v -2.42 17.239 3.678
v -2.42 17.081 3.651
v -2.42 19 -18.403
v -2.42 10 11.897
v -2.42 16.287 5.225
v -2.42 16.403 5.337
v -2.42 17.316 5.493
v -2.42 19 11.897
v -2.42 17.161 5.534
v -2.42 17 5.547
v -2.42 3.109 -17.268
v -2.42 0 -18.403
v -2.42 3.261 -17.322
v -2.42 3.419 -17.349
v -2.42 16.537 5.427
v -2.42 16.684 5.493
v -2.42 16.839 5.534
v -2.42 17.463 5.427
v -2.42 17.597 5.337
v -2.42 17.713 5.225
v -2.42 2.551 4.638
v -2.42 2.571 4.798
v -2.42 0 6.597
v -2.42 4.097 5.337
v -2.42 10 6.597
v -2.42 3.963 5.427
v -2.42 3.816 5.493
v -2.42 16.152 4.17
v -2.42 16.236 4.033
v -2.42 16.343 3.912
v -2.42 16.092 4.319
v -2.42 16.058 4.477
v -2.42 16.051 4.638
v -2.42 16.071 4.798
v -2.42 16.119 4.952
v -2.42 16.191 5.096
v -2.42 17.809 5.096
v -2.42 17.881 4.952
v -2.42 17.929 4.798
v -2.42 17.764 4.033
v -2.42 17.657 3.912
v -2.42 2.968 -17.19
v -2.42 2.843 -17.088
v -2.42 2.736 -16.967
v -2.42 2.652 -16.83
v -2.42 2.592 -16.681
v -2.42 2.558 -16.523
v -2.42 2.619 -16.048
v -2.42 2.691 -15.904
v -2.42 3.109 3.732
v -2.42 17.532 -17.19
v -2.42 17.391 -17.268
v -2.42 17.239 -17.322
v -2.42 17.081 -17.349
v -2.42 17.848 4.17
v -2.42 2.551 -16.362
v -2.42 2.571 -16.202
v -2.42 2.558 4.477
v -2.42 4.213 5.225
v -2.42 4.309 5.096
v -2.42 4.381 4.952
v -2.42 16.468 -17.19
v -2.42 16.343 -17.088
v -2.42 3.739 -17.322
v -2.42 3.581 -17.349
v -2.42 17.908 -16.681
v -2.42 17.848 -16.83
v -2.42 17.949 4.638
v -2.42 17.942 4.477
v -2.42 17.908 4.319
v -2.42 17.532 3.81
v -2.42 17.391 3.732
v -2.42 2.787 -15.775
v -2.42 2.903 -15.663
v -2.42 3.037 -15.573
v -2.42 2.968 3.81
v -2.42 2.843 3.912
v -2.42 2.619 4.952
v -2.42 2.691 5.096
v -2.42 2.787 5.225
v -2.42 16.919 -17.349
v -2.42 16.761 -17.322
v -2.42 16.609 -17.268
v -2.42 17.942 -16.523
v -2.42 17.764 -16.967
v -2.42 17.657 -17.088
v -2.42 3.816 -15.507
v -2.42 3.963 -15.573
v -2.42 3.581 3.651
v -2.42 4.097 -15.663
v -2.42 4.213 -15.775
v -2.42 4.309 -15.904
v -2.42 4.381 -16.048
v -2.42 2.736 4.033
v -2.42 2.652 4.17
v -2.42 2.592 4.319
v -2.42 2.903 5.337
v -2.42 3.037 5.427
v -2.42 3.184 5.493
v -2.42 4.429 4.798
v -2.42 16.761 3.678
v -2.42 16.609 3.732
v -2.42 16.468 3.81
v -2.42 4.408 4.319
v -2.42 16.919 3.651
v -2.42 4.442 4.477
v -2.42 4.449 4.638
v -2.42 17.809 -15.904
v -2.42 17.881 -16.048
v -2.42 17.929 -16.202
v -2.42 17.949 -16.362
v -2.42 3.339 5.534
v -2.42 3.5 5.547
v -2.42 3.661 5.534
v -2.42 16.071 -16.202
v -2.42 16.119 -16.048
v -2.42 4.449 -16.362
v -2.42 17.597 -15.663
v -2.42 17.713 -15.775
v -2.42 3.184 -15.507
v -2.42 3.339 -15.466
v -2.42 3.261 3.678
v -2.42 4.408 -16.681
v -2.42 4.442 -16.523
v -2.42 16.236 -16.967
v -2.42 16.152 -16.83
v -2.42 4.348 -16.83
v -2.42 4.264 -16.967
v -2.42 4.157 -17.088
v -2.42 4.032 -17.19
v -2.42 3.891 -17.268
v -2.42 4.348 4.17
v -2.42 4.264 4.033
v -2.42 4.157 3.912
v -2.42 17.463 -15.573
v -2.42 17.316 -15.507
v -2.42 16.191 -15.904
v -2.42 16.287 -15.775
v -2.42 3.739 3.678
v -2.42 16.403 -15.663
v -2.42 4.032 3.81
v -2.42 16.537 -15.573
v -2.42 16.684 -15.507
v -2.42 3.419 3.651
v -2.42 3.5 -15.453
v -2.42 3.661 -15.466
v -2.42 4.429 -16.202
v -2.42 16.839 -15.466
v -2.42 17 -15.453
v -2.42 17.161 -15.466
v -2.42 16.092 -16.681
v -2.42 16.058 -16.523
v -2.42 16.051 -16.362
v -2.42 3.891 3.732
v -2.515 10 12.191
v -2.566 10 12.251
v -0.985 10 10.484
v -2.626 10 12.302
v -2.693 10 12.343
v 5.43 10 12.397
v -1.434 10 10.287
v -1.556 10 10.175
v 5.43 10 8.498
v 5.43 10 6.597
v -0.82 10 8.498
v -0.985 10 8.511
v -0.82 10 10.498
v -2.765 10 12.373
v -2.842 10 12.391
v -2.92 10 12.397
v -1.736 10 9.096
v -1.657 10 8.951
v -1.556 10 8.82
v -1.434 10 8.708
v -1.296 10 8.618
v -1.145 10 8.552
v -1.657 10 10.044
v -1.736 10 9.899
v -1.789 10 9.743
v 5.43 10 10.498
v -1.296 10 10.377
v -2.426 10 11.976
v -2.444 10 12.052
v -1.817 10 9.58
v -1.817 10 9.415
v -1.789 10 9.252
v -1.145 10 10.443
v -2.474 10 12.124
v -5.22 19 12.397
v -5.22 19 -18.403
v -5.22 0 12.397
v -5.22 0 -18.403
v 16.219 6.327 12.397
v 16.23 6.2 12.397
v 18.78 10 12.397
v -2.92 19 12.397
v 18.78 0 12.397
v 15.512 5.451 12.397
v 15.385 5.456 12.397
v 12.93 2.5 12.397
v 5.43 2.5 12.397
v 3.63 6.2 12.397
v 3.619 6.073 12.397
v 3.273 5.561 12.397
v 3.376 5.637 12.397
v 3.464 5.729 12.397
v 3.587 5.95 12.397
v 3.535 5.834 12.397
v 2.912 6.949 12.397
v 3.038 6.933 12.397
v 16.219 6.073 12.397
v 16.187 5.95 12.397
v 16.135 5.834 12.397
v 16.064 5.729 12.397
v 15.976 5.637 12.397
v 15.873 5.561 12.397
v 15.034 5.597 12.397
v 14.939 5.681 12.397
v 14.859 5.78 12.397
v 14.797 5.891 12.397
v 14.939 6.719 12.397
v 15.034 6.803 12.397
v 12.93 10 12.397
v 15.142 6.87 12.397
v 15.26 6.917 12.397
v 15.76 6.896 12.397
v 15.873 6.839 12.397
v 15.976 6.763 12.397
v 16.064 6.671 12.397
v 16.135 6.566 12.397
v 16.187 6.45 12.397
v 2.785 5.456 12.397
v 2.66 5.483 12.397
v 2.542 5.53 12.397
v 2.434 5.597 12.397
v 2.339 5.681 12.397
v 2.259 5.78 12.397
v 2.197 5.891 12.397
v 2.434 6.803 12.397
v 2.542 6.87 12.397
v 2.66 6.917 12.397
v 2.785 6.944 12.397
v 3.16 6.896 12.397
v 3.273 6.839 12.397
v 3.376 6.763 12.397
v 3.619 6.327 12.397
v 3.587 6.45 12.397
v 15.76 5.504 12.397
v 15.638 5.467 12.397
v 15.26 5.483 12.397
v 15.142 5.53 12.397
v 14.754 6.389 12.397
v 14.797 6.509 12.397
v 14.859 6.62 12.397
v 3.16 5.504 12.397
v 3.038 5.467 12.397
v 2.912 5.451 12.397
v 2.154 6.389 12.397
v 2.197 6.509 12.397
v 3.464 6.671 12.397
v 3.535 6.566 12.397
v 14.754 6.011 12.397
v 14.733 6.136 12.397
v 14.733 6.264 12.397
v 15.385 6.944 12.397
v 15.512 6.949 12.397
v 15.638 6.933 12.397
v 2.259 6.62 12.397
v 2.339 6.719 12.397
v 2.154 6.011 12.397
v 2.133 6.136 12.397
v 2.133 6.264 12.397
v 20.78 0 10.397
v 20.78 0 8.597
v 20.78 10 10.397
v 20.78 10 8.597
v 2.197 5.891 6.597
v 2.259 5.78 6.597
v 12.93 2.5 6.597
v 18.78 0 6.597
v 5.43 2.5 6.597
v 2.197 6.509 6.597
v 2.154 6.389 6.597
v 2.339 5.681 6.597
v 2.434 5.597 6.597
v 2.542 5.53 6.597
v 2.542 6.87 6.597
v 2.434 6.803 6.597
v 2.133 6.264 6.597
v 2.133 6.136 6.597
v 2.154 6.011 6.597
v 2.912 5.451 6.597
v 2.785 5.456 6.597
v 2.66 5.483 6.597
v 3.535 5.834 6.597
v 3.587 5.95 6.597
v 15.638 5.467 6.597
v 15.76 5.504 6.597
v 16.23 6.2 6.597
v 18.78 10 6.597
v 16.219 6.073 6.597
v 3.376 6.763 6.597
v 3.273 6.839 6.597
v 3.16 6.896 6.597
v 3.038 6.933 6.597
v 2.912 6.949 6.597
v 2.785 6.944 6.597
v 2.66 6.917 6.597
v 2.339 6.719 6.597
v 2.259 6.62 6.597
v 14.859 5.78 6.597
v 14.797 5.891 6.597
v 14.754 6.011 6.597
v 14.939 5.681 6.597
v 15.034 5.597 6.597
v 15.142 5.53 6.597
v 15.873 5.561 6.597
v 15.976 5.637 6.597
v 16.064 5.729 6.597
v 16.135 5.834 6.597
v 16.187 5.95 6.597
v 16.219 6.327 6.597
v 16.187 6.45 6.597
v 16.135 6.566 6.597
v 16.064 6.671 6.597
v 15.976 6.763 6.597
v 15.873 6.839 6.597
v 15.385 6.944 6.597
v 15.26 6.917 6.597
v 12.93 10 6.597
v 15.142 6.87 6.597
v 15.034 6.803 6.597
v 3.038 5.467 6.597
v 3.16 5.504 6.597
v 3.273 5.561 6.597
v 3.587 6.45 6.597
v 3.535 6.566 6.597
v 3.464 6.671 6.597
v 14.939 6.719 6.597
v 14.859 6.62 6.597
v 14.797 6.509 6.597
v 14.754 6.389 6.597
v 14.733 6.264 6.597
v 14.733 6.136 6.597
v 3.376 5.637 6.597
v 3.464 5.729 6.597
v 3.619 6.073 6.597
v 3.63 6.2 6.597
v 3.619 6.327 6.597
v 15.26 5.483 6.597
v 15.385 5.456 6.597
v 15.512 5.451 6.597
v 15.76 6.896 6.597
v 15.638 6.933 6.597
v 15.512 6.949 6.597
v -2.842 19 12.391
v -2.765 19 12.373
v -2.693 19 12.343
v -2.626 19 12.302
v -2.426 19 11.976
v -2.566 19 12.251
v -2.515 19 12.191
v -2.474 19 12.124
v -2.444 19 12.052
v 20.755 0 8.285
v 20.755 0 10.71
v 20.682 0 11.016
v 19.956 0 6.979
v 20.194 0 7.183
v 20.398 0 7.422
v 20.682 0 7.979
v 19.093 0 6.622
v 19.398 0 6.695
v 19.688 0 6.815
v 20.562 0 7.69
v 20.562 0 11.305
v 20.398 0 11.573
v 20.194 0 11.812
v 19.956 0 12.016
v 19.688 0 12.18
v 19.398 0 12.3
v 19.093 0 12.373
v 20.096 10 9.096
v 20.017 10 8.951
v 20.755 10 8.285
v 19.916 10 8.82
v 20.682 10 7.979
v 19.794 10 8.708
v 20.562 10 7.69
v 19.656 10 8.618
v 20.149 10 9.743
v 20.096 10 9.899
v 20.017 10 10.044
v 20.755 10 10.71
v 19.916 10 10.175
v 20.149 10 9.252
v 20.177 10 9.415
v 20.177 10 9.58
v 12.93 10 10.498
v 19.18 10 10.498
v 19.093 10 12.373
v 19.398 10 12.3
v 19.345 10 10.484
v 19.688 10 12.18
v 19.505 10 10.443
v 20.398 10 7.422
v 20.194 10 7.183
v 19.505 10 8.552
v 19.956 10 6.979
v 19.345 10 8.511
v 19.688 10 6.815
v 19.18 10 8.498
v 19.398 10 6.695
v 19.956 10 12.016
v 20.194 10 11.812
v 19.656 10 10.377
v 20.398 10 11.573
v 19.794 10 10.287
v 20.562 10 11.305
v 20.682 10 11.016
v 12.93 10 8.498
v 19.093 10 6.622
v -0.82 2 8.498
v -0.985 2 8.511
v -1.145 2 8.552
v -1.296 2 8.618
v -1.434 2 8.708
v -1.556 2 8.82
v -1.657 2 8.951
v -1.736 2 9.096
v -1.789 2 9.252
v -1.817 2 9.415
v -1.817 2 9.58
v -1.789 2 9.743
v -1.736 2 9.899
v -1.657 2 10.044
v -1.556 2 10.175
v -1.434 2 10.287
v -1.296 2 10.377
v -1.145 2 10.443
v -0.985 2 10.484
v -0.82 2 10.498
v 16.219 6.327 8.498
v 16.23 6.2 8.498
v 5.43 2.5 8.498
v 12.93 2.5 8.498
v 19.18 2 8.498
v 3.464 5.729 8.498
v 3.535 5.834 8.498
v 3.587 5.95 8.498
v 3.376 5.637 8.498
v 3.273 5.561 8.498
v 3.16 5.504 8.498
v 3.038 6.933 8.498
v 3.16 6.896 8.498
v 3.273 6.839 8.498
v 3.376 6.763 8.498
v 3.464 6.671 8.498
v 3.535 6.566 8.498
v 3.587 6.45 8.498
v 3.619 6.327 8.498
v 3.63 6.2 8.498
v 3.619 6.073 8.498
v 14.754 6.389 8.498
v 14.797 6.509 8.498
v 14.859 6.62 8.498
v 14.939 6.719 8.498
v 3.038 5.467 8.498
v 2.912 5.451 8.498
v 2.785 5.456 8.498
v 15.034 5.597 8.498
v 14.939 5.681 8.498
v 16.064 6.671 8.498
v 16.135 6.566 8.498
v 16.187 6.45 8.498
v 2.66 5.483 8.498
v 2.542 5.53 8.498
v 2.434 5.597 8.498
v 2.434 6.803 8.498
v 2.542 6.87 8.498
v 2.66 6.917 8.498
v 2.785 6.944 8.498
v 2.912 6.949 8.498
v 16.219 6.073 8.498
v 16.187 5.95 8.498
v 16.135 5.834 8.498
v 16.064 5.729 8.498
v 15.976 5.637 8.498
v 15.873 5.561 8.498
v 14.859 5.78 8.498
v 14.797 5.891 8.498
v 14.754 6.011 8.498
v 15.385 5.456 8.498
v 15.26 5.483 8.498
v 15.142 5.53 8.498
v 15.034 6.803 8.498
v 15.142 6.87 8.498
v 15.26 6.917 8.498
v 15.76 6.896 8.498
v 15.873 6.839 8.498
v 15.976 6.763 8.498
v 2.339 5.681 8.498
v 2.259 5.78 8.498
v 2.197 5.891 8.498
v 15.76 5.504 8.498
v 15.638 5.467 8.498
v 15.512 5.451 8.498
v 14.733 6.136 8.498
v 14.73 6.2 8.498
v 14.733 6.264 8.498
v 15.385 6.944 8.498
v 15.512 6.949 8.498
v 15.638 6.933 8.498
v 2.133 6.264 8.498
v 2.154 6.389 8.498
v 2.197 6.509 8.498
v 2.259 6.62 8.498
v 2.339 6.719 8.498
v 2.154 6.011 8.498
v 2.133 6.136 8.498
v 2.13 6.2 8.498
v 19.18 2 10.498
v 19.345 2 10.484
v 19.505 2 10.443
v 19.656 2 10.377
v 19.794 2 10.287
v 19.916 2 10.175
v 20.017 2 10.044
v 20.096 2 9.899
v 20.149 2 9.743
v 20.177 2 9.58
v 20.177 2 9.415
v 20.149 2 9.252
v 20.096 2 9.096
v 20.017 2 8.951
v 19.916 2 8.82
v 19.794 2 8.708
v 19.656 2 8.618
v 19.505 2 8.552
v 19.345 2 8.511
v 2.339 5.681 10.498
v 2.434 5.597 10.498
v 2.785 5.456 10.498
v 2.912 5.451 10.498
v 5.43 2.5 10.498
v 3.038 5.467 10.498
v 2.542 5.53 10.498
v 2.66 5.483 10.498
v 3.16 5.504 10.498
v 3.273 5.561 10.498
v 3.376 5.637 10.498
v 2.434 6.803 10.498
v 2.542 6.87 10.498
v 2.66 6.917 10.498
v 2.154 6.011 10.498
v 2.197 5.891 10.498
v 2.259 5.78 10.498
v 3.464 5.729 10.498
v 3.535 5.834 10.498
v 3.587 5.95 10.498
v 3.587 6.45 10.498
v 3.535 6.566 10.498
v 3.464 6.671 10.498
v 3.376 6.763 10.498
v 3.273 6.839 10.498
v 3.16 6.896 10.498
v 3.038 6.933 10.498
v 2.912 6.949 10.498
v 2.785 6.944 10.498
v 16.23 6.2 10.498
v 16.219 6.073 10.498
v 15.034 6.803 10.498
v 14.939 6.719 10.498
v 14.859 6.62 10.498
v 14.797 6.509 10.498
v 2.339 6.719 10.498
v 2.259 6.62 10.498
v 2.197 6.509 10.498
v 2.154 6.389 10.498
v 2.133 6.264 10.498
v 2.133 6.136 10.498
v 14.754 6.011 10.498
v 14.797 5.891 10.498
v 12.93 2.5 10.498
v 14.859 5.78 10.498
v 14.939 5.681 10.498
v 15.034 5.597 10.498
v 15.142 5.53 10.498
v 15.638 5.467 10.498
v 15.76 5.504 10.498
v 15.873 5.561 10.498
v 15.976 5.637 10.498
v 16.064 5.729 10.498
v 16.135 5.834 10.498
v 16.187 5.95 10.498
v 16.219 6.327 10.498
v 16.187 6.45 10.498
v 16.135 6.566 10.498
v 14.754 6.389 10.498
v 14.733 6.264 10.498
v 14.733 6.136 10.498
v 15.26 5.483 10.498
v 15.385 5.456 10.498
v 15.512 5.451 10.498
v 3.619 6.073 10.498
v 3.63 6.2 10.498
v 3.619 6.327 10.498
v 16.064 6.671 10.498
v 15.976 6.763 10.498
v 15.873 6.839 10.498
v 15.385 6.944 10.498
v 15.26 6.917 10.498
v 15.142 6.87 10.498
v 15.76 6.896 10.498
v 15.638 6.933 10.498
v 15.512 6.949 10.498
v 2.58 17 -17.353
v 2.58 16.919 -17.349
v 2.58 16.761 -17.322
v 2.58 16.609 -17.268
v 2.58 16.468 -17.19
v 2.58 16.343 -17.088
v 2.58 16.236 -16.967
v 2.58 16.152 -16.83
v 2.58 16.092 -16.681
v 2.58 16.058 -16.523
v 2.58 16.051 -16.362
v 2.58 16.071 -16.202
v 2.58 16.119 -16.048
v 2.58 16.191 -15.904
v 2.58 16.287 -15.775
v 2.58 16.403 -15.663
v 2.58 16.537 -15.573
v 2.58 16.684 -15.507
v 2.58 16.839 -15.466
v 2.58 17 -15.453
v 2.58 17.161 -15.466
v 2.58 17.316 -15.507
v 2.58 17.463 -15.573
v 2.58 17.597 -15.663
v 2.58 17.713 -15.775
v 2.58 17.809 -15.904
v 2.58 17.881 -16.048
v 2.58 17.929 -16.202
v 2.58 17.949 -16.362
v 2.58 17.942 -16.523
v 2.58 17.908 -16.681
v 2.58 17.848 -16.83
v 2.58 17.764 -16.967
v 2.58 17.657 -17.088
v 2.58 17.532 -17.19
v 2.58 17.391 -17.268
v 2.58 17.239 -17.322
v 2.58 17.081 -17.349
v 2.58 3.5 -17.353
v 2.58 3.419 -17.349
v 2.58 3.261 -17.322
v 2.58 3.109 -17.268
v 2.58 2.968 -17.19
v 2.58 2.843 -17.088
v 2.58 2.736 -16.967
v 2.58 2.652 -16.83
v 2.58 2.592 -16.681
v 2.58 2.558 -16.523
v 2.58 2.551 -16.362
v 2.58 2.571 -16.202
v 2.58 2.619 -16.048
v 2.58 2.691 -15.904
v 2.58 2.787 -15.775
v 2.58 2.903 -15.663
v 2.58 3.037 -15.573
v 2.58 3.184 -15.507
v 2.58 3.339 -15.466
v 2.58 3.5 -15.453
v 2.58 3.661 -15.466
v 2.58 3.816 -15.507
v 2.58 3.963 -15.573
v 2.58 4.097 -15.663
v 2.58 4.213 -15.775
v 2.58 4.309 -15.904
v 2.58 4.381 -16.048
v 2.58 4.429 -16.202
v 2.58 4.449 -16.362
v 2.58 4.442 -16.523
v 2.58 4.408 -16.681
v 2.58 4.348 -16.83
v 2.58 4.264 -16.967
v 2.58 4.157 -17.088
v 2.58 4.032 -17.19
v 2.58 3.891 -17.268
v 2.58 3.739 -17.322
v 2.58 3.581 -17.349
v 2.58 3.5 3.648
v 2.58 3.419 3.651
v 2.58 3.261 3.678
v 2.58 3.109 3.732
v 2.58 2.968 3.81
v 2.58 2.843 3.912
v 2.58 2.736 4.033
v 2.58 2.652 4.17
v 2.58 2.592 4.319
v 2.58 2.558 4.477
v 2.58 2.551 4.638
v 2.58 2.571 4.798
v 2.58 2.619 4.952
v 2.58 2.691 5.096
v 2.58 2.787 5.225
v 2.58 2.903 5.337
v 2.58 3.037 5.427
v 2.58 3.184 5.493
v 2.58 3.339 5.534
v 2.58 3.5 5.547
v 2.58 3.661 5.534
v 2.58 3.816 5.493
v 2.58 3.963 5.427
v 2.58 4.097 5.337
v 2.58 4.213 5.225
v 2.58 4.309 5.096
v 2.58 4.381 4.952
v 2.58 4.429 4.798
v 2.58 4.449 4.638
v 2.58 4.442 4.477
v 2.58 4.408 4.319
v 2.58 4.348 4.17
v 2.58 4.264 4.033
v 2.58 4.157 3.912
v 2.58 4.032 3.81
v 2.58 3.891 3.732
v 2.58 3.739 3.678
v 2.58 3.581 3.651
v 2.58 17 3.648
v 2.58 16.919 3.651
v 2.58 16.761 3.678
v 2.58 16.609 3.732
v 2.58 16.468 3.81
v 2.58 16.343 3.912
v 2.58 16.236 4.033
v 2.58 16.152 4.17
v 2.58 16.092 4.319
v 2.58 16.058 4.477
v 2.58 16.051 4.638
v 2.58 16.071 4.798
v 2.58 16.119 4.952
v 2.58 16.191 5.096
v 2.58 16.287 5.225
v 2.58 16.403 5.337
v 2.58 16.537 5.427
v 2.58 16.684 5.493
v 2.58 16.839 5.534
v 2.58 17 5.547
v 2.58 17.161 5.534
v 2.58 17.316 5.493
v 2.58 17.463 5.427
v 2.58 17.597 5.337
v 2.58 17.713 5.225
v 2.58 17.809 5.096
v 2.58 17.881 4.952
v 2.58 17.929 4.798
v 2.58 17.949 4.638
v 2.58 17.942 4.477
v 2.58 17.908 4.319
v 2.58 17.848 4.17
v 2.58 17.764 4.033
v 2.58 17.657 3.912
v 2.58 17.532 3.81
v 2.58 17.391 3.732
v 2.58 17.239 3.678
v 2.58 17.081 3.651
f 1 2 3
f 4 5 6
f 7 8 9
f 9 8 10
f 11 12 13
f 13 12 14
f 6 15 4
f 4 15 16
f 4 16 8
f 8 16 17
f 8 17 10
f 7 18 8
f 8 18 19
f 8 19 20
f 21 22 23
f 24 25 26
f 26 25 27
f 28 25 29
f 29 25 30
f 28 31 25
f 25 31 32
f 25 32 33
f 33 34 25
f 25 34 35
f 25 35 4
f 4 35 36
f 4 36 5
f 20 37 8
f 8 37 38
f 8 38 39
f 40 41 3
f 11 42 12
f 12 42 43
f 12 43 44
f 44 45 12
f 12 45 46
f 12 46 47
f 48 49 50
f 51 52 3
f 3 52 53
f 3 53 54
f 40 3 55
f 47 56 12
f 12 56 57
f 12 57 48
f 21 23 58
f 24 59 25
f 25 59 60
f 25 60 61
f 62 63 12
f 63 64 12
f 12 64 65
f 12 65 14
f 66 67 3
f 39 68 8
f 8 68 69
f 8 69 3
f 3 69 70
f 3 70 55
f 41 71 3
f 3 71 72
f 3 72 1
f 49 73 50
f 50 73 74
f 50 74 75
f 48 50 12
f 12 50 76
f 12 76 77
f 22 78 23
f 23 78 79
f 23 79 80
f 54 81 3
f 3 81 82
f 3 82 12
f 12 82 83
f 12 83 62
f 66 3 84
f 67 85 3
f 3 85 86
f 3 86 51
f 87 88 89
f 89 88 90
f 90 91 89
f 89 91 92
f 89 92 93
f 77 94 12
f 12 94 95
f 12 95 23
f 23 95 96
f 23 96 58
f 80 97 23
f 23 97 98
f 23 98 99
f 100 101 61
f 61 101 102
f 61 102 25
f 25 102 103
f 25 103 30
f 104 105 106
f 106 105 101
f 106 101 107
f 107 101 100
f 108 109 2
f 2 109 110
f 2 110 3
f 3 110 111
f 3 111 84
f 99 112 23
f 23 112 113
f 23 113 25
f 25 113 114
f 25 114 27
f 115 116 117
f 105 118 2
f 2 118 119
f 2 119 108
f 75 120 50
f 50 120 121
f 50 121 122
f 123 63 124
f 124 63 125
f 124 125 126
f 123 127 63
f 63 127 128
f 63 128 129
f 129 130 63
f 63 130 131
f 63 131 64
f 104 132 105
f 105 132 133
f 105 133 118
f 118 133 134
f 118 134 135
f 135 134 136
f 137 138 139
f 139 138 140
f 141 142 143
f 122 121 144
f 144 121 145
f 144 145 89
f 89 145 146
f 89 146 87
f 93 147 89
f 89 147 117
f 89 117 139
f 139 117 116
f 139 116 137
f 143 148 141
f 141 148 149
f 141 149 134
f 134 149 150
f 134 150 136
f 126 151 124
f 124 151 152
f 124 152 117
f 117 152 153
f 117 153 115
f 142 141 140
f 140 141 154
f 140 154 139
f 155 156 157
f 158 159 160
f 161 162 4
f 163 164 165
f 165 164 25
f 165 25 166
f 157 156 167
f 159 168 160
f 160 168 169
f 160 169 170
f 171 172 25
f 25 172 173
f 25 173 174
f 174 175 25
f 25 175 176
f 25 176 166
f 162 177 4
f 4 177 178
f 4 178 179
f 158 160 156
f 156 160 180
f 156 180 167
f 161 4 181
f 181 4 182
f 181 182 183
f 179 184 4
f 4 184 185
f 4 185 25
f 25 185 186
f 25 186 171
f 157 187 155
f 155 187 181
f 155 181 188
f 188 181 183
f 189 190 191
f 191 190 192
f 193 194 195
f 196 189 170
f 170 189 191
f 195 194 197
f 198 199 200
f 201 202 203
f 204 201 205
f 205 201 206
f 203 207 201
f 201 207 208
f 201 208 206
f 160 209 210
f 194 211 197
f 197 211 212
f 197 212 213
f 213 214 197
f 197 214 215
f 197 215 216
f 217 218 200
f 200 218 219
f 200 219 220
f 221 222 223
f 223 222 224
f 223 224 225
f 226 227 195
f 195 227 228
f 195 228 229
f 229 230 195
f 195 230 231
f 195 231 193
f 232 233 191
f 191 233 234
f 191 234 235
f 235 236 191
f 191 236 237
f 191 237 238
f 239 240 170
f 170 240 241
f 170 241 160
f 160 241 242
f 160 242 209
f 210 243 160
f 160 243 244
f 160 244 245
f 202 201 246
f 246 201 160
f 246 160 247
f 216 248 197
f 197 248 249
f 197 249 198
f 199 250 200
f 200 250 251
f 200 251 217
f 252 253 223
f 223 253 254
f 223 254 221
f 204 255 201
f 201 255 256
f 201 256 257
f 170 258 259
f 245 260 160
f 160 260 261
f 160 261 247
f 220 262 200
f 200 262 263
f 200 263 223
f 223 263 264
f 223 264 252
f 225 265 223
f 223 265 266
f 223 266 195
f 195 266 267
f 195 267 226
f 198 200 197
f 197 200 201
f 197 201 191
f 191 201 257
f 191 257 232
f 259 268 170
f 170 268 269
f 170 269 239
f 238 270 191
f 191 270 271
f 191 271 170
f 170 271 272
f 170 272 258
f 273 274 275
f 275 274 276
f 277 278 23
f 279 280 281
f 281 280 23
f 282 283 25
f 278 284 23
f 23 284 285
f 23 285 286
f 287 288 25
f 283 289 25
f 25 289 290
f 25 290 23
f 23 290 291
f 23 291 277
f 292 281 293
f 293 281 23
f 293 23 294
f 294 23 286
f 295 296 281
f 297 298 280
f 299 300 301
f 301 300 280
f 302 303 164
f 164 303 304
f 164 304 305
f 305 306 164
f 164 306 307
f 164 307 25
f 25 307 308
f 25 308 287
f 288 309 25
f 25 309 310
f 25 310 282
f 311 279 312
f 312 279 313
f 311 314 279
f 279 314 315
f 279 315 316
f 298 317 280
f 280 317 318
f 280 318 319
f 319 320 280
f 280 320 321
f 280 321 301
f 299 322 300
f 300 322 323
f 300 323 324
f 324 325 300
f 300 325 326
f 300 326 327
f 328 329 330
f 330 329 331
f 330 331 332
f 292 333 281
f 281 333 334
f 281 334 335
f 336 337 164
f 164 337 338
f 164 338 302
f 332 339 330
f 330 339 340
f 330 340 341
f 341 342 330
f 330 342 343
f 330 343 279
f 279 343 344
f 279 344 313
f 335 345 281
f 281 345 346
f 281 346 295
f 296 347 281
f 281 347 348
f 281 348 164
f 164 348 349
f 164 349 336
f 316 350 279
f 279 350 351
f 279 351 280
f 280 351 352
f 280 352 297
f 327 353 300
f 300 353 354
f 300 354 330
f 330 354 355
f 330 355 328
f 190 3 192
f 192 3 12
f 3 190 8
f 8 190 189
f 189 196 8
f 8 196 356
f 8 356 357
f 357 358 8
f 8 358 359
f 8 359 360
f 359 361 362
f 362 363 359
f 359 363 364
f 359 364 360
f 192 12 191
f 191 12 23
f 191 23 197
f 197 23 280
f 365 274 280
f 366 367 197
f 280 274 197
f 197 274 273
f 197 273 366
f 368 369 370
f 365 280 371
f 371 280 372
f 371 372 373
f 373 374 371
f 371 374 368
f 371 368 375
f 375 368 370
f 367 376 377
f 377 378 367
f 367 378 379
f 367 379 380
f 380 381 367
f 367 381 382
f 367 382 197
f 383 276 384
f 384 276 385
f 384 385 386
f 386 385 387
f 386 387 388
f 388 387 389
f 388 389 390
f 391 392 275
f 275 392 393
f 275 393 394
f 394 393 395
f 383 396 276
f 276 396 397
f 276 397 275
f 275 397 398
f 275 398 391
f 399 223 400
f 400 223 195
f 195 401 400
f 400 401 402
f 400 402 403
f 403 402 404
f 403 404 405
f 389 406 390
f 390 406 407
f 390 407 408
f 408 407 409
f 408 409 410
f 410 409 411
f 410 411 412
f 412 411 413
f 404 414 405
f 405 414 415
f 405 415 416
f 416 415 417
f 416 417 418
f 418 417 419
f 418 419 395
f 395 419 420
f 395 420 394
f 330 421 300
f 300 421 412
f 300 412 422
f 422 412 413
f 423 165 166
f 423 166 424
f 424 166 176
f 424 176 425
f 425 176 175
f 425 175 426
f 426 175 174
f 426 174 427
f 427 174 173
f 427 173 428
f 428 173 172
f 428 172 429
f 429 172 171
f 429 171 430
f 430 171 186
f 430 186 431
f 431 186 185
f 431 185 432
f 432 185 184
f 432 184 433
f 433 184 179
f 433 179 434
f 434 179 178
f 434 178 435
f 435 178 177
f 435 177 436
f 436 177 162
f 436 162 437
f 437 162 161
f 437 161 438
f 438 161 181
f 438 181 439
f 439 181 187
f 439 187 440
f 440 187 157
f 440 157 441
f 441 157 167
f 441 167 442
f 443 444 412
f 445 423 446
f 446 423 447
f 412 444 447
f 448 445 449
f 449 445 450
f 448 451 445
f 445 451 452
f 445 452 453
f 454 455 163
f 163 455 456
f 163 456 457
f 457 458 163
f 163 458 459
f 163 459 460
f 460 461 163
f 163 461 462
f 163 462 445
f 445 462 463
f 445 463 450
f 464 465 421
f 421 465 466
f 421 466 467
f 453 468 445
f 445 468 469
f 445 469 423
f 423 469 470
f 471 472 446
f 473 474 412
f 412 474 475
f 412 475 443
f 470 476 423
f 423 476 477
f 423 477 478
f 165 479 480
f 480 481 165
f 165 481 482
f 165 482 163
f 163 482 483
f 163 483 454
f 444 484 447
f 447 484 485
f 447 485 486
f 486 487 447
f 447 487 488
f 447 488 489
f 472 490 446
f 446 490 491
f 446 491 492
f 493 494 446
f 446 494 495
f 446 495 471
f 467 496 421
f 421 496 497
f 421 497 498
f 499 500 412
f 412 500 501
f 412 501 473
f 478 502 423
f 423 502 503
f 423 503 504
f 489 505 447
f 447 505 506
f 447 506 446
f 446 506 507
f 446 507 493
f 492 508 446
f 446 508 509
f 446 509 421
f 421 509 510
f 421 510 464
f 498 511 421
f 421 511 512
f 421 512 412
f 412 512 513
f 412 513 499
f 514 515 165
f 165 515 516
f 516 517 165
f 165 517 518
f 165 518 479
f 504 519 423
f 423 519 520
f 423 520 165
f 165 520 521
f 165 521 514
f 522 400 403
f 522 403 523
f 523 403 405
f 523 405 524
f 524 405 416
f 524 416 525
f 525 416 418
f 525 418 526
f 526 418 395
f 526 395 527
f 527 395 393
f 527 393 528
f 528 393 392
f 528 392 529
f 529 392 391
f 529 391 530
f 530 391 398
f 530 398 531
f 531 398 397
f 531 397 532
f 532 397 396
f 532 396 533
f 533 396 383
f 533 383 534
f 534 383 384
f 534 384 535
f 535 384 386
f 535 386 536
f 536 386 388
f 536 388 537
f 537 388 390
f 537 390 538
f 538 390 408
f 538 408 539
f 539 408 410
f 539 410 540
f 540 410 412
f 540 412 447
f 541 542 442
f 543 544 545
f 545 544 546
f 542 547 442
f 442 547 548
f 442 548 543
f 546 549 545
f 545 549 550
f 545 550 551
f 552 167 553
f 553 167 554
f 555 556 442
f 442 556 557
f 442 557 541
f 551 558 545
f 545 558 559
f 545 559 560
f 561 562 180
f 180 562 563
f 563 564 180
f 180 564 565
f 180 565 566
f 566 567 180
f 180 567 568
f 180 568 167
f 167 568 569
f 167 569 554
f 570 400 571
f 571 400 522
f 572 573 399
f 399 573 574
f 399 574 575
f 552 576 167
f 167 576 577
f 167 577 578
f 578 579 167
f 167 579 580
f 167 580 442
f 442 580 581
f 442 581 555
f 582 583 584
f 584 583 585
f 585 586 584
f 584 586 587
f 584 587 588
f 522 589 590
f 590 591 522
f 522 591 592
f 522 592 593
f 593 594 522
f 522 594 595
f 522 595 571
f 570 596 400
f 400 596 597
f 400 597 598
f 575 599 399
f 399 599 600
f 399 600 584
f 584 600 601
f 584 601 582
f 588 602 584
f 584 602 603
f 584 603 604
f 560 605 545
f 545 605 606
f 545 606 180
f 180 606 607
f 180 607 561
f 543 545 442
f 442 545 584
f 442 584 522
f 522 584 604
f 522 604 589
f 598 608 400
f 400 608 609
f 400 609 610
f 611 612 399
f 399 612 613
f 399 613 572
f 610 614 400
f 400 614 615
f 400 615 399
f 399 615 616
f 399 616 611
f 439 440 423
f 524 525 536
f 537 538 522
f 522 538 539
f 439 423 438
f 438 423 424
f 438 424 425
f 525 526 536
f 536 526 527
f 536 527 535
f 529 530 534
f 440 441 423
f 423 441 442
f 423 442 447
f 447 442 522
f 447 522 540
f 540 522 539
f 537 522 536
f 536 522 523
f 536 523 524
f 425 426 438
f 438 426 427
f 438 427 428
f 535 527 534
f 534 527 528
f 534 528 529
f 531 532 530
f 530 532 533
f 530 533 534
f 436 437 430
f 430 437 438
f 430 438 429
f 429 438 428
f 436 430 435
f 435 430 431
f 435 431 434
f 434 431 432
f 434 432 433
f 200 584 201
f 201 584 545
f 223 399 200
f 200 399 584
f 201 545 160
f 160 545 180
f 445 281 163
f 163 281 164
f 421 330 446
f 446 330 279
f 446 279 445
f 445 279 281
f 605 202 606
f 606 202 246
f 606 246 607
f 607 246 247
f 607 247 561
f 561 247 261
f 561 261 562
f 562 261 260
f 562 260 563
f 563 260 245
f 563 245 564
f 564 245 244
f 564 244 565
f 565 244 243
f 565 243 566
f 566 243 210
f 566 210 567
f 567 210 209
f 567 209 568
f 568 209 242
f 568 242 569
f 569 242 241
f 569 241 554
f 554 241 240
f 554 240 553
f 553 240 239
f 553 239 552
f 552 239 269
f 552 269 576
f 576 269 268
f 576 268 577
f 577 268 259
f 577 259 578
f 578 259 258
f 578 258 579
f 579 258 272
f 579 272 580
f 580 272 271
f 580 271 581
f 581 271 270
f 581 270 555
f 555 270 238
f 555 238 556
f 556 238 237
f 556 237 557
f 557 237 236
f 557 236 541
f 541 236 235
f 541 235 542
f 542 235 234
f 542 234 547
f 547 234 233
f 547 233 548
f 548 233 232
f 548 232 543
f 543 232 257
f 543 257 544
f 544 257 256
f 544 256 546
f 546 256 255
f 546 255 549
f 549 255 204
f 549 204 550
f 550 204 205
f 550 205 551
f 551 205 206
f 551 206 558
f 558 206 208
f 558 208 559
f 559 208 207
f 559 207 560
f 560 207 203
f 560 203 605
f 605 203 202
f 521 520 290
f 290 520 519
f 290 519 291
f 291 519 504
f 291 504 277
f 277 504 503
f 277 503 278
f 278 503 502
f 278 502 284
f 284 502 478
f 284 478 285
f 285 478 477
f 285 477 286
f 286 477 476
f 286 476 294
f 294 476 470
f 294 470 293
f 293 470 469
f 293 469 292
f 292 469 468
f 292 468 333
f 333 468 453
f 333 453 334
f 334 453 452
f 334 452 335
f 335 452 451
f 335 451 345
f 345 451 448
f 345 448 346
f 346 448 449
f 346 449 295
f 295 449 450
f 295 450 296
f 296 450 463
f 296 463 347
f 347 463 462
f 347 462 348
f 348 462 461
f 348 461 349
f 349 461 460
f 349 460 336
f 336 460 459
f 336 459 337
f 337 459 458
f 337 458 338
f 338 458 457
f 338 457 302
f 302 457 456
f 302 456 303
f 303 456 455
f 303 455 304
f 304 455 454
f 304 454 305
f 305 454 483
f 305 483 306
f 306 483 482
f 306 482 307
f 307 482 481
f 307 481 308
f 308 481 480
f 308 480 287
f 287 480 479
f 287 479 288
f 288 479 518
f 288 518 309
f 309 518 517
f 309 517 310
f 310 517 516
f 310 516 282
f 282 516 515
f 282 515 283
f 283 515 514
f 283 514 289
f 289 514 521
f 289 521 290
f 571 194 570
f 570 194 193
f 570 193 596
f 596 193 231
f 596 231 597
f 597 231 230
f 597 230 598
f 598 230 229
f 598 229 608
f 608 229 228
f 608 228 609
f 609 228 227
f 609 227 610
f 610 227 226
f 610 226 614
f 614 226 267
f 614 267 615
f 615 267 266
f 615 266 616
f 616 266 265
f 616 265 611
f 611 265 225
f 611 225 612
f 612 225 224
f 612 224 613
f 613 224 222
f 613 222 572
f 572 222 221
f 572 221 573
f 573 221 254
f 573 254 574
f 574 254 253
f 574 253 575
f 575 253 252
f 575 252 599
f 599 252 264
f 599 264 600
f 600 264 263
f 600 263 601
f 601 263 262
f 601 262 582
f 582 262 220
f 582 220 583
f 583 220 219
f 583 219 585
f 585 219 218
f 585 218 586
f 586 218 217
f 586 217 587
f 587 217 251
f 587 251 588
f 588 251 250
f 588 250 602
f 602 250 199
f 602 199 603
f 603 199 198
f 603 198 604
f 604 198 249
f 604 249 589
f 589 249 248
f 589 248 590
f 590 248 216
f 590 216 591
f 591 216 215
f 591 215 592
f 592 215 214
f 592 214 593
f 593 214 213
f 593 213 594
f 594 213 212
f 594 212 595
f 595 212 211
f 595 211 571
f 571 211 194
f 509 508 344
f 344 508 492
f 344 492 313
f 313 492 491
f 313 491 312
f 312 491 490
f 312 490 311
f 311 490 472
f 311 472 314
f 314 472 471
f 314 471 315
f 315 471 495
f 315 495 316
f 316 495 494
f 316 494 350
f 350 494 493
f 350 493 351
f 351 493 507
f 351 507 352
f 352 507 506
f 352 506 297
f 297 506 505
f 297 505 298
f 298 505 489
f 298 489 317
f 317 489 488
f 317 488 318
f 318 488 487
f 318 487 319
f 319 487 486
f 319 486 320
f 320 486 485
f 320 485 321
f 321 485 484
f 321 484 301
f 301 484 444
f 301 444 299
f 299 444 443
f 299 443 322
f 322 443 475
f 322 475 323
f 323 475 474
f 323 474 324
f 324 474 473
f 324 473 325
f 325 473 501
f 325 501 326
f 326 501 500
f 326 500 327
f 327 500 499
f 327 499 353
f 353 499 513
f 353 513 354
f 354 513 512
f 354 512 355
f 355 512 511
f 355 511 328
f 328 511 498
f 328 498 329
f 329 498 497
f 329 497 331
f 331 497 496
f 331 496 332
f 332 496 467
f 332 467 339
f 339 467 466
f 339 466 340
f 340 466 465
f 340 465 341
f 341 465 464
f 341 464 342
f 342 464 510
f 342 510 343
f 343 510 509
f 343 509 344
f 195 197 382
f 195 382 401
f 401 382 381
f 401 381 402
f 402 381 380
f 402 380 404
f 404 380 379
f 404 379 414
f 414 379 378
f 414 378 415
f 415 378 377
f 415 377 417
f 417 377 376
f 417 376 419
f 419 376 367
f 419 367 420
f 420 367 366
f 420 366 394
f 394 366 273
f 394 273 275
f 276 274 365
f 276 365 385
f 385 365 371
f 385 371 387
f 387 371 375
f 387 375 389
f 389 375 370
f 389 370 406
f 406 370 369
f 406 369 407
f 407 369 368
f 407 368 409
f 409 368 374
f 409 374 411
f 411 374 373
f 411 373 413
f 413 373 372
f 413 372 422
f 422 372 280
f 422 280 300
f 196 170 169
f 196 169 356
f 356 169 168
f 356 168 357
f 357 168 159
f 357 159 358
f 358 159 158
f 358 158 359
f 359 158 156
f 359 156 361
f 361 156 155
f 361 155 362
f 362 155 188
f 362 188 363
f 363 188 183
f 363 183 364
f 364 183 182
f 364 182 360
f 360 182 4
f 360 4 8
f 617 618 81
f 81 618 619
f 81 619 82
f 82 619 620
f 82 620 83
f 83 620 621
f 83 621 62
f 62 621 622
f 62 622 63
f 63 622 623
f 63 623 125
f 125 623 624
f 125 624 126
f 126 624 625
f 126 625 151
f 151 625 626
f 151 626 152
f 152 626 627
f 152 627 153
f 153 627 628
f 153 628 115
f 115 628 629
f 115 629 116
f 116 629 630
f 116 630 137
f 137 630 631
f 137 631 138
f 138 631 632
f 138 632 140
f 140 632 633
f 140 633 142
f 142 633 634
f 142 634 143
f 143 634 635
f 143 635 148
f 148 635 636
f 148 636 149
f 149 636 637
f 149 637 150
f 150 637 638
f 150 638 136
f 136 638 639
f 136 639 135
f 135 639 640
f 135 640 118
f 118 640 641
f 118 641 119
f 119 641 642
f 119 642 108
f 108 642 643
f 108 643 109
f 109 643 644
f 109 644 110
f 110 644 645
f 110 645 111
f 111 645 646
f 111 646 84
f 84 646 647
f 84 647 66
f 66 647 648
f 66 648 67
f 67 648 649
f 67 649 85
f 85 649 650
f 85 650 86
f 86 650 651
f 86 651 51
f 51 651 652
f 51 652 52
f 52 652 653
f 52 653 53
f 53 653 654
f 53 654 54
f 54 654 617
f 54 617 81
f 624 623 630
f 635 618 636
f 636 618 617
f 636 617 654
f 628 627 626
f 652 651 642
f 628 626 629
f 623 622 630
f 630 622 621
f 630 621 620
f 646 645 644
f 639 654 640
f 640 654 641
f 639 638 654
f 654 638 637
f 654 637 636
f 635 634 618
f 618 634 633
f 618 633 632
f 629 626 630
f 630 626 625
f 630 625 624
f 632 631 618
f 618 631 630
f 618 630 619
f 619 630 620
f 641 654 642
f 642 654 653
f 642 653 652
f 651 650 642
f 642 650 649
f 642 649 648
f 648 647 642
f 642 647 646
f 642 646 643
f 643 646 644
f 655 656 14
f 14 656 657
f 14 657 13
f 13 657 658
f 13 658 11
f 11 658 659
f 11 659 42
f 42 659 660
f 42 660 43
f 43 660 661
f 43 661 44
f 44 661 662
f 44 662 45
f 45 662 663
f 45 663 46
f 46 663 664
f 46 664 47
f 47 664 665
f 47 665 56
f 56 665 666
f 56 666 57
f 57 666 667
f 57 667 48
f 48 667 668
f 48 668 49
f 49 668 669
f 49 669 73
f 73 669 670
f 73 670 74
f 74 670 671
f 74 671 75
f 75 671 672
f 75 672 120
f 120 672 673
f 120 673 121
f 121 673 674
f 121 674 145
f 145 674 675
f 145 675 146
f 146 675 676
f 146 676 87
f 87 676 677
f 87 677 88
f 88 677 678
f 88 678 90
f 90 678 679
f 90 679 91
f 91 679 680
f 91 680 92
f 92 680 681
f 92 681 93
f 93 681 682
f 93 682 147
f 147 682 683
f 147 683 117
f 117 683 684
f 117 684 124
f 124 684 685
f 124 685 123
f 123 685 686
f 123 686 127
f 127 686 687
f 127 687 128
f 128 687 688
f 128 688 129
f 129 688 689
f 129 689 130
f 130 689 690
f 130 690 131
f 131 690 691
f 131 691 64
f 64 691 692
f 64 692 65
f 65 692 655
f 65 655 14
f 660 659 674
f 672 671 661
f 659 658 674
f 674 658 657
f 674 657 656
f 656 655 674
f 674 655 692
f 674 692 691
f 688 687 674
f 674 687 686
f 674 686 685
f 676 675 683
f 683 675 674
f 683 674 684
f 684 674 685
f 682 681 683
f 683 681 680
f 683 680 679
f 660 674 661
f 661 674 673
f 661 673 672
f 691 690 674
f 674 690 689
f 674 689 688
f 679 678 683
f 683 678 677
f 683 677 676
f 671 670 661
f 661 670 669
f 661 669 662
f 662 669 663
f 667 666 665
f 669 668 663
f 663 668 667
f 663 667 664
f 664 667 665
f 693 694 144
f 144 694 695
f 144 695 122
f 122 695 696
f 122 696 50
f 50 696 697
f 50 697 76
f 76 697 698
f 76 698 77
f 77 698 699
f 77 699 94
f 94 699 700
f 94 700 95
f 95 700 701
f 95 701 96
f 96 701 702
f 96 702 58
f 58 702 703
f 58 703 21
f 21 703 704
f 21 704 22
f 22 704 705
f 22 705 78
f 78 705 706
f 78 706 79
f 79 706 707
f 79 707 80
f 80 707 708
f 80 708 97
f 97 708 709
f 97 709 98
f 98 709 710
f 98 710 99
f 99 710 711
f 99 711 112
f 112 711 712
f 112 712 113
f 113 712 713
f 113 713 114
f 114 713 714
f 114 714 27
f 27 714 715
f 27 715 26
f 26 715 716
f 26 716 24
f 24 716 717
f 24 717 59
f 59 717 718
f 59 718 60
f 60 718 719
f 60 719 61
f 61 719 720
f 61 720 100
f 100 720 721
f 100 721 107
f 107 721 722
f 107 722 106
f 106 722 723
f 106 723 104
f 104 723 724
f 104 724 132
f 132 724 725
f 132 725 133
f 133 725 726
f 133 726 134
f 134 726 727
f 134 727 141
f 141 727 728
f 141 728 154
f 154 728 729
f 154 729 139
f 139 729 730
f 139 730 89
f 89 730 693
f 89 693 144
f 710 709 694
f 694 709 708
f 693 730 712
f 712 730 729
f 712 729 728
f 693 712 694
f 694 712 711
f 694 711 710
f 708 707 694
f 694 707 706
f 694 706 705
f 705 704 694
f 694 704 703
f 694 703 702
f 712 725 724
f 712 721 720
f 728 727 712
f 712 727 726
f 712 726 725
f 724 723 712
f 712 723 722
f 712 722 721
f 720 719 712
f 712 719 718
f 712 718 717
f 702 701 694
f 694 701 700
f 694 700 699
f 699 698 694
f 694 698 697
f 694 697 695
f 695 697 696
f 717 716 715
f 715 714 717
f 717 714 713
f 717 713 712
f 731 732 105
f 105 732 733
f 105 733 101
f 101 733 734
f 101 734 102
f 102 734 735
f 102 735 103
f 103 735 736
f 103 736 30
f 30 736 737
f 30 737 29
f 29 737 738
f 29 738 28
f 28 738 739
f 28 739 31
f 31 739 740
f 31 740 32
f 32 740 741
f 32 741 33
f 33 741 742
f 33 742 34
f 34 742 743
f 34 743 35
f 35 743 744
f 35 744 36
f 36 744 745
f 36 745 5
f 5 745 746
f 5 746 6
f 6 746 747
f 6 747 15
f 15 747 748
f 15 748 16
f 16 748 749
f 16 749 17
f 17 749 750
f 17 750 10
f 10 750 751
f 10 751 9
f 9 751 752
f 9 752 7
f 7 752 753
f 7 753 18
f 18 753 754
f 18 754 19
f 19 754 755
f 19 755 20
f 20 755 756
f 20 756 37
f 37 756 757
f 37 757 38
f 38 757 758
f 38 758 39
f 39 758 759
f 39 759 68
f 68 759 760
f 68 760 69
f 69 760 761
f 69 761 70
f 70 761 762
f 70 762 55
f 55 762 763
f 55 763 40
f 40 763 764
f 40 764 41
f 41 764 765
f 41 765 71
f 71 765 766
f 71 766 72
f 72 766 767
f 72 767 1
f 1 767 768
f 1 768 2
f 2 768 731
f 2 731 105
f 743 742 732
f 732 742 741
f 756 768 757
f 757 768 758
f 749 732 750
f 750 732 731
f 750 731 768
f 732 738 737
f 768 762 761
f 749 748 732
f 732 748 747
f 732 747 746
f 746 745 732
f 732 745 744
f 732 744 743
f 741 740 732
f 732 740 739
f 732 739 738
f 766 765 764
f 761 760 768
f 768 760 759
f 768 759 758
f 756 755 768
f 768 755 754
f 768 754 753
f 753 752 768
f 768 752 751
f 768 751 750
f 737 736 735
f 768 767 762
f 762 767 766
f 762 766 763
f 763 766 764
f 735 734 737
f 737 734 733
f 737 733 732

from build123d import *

# Parameters (mm, degrees)
EXTRUDE_1_DEPTH     = 19
SKETCH_3_W          = 23.2
SKETCH_3_H          = 9
CUT_EXTRUDE_2_DEPTH = 31.8
CUT_EXTRUDE_3_DEPTH = 8
SKETCH_5_W          = 7.5
SKETCH_5_H          = 7.5
CUT_EXTRUDE_4_DEPTH = 31.8
SKETCH_7_R          = 0.75
CUT_EXTRUDE_6_DEPTH = 31.8
FILLET_3_R          = 2
FILLET_4_R          = 0.5
SKETCH_8_R          = 0.95
EXTRUDE_2_DEPTH     = 5


with BuildPart() as part:
    # 草图1 → 凸台-拉伸1 (new body)
    with BuildSketch(Plane(origin=(0, 0, 0), x_dir=(1, 0, 0), z_dir=(0, 1, 0))):
        Polygon((-5.22, 18.4025), (-2.42, 18.4025), (-2.42, -6.5975), (20.78, -6.5975), (20.78, -12.3975), (-5.22, -12.3975), align=None)
    extrude(amount=EXTRUDE_1_DEPTH)

    # 草图3 → 切除-拉伸2 (cut, through all)
    with BuildSketch(Plane.XY.offset(12.3975)):
        with Locations((9.18, 14.5)):
            Rectangle(SKETCH_3_W, SKETCH_3_H)
    extrude(amount=-CUT_EXTRUDE_2_DEPTH, mode=Mode.SUBTRACT)

    # 草图4 → 切除-拉伸3 (cut)
    with BuildSketch(Plane(origin=(0, 10, 0), x_dir=(1, 0, 0), z_dir=(0, 1, 0))):
        with BuildLine():
            Line((-0.82, -8.4975), (19.18, -8.4975))
            ThreePointArc((19.18, -8.4975), (20.18, -9.4975), (19.18, -10.4975))
            Line((19.18, -10.4975), (-0.82, -10.4975))
            ThreePointArc((-0.82, -10.4975), (-1.82, -9.4975), (-0.82, -8.4975))
        make_face()
    extrude(amount=-CUT_EXTRUDE_3_DEPTH, mode=Mode.SUBTRACT)

    # 草图5 → 切除-拉伸4 (cut, through all)
    with BuildSketch(Plane.XY.offset(12.3975)):
        with Locations((9.18, 6.25)):
            Rectangle(SKETCH_5_W, SKETCH_5_H)
    extrude(amount=-CUT_EXTRUDE_4_DEPTH, mode=Mode.SUBTRACT)

    # 草图7 → 切除-拉伸6 (cut, through all)
    with BuildSketch(Plane.XY.offset(12.3975)):
        with Locations((2.88, 6.2)):
            Circle(SKETCH_7_R)
        with Locations((15.48, 6.2)):
            Circle(SKETCH_7_R)
    extrude(amount=-CUT_EXTRUDE_6_DEPTH, mode=Mode.SUBTRACT)

    # 圆角3
    fillet_3_edges = [part.edges().sort_by_distance(p)[0] for p in [
        (20.78, 5, 6.5975),
        (20.78, 5, 12.3975),
    ]]
    fillet(fillet_3_edges, radius=FILLET_3_R)

    # 圆角4
    fillet_4_edges = [part.edges().sort_by_distance(p)[0] for p in [
        (-2.42, 14.5, 12.3975),
    ]]
    fillet(fillet_4_edges, radius=FILLET_4_R)

    # 草图8 → 凸台-拉伸2 (add)
    with BuildSketch(Plane(origin=(-2.42, 0, 0), x_dir=(0, 0, -1), z_dir=(1, 0, 0))):
        with Locations((16.4025, 17)):
            Circle(SKETCH_8_R)
        with Locations((16.4025, 3.5)):
            Circle(SKETCH_8_R)
        with Locations((-4.5975, 3.5)):
            Circle(SKETCH_8_R)
        with Locations((-4.5975, 17)):
            Circle(SKETCH_8_R)
    extrude(amount=EXTRUDE_2_DEPTH)


solid = part.part
